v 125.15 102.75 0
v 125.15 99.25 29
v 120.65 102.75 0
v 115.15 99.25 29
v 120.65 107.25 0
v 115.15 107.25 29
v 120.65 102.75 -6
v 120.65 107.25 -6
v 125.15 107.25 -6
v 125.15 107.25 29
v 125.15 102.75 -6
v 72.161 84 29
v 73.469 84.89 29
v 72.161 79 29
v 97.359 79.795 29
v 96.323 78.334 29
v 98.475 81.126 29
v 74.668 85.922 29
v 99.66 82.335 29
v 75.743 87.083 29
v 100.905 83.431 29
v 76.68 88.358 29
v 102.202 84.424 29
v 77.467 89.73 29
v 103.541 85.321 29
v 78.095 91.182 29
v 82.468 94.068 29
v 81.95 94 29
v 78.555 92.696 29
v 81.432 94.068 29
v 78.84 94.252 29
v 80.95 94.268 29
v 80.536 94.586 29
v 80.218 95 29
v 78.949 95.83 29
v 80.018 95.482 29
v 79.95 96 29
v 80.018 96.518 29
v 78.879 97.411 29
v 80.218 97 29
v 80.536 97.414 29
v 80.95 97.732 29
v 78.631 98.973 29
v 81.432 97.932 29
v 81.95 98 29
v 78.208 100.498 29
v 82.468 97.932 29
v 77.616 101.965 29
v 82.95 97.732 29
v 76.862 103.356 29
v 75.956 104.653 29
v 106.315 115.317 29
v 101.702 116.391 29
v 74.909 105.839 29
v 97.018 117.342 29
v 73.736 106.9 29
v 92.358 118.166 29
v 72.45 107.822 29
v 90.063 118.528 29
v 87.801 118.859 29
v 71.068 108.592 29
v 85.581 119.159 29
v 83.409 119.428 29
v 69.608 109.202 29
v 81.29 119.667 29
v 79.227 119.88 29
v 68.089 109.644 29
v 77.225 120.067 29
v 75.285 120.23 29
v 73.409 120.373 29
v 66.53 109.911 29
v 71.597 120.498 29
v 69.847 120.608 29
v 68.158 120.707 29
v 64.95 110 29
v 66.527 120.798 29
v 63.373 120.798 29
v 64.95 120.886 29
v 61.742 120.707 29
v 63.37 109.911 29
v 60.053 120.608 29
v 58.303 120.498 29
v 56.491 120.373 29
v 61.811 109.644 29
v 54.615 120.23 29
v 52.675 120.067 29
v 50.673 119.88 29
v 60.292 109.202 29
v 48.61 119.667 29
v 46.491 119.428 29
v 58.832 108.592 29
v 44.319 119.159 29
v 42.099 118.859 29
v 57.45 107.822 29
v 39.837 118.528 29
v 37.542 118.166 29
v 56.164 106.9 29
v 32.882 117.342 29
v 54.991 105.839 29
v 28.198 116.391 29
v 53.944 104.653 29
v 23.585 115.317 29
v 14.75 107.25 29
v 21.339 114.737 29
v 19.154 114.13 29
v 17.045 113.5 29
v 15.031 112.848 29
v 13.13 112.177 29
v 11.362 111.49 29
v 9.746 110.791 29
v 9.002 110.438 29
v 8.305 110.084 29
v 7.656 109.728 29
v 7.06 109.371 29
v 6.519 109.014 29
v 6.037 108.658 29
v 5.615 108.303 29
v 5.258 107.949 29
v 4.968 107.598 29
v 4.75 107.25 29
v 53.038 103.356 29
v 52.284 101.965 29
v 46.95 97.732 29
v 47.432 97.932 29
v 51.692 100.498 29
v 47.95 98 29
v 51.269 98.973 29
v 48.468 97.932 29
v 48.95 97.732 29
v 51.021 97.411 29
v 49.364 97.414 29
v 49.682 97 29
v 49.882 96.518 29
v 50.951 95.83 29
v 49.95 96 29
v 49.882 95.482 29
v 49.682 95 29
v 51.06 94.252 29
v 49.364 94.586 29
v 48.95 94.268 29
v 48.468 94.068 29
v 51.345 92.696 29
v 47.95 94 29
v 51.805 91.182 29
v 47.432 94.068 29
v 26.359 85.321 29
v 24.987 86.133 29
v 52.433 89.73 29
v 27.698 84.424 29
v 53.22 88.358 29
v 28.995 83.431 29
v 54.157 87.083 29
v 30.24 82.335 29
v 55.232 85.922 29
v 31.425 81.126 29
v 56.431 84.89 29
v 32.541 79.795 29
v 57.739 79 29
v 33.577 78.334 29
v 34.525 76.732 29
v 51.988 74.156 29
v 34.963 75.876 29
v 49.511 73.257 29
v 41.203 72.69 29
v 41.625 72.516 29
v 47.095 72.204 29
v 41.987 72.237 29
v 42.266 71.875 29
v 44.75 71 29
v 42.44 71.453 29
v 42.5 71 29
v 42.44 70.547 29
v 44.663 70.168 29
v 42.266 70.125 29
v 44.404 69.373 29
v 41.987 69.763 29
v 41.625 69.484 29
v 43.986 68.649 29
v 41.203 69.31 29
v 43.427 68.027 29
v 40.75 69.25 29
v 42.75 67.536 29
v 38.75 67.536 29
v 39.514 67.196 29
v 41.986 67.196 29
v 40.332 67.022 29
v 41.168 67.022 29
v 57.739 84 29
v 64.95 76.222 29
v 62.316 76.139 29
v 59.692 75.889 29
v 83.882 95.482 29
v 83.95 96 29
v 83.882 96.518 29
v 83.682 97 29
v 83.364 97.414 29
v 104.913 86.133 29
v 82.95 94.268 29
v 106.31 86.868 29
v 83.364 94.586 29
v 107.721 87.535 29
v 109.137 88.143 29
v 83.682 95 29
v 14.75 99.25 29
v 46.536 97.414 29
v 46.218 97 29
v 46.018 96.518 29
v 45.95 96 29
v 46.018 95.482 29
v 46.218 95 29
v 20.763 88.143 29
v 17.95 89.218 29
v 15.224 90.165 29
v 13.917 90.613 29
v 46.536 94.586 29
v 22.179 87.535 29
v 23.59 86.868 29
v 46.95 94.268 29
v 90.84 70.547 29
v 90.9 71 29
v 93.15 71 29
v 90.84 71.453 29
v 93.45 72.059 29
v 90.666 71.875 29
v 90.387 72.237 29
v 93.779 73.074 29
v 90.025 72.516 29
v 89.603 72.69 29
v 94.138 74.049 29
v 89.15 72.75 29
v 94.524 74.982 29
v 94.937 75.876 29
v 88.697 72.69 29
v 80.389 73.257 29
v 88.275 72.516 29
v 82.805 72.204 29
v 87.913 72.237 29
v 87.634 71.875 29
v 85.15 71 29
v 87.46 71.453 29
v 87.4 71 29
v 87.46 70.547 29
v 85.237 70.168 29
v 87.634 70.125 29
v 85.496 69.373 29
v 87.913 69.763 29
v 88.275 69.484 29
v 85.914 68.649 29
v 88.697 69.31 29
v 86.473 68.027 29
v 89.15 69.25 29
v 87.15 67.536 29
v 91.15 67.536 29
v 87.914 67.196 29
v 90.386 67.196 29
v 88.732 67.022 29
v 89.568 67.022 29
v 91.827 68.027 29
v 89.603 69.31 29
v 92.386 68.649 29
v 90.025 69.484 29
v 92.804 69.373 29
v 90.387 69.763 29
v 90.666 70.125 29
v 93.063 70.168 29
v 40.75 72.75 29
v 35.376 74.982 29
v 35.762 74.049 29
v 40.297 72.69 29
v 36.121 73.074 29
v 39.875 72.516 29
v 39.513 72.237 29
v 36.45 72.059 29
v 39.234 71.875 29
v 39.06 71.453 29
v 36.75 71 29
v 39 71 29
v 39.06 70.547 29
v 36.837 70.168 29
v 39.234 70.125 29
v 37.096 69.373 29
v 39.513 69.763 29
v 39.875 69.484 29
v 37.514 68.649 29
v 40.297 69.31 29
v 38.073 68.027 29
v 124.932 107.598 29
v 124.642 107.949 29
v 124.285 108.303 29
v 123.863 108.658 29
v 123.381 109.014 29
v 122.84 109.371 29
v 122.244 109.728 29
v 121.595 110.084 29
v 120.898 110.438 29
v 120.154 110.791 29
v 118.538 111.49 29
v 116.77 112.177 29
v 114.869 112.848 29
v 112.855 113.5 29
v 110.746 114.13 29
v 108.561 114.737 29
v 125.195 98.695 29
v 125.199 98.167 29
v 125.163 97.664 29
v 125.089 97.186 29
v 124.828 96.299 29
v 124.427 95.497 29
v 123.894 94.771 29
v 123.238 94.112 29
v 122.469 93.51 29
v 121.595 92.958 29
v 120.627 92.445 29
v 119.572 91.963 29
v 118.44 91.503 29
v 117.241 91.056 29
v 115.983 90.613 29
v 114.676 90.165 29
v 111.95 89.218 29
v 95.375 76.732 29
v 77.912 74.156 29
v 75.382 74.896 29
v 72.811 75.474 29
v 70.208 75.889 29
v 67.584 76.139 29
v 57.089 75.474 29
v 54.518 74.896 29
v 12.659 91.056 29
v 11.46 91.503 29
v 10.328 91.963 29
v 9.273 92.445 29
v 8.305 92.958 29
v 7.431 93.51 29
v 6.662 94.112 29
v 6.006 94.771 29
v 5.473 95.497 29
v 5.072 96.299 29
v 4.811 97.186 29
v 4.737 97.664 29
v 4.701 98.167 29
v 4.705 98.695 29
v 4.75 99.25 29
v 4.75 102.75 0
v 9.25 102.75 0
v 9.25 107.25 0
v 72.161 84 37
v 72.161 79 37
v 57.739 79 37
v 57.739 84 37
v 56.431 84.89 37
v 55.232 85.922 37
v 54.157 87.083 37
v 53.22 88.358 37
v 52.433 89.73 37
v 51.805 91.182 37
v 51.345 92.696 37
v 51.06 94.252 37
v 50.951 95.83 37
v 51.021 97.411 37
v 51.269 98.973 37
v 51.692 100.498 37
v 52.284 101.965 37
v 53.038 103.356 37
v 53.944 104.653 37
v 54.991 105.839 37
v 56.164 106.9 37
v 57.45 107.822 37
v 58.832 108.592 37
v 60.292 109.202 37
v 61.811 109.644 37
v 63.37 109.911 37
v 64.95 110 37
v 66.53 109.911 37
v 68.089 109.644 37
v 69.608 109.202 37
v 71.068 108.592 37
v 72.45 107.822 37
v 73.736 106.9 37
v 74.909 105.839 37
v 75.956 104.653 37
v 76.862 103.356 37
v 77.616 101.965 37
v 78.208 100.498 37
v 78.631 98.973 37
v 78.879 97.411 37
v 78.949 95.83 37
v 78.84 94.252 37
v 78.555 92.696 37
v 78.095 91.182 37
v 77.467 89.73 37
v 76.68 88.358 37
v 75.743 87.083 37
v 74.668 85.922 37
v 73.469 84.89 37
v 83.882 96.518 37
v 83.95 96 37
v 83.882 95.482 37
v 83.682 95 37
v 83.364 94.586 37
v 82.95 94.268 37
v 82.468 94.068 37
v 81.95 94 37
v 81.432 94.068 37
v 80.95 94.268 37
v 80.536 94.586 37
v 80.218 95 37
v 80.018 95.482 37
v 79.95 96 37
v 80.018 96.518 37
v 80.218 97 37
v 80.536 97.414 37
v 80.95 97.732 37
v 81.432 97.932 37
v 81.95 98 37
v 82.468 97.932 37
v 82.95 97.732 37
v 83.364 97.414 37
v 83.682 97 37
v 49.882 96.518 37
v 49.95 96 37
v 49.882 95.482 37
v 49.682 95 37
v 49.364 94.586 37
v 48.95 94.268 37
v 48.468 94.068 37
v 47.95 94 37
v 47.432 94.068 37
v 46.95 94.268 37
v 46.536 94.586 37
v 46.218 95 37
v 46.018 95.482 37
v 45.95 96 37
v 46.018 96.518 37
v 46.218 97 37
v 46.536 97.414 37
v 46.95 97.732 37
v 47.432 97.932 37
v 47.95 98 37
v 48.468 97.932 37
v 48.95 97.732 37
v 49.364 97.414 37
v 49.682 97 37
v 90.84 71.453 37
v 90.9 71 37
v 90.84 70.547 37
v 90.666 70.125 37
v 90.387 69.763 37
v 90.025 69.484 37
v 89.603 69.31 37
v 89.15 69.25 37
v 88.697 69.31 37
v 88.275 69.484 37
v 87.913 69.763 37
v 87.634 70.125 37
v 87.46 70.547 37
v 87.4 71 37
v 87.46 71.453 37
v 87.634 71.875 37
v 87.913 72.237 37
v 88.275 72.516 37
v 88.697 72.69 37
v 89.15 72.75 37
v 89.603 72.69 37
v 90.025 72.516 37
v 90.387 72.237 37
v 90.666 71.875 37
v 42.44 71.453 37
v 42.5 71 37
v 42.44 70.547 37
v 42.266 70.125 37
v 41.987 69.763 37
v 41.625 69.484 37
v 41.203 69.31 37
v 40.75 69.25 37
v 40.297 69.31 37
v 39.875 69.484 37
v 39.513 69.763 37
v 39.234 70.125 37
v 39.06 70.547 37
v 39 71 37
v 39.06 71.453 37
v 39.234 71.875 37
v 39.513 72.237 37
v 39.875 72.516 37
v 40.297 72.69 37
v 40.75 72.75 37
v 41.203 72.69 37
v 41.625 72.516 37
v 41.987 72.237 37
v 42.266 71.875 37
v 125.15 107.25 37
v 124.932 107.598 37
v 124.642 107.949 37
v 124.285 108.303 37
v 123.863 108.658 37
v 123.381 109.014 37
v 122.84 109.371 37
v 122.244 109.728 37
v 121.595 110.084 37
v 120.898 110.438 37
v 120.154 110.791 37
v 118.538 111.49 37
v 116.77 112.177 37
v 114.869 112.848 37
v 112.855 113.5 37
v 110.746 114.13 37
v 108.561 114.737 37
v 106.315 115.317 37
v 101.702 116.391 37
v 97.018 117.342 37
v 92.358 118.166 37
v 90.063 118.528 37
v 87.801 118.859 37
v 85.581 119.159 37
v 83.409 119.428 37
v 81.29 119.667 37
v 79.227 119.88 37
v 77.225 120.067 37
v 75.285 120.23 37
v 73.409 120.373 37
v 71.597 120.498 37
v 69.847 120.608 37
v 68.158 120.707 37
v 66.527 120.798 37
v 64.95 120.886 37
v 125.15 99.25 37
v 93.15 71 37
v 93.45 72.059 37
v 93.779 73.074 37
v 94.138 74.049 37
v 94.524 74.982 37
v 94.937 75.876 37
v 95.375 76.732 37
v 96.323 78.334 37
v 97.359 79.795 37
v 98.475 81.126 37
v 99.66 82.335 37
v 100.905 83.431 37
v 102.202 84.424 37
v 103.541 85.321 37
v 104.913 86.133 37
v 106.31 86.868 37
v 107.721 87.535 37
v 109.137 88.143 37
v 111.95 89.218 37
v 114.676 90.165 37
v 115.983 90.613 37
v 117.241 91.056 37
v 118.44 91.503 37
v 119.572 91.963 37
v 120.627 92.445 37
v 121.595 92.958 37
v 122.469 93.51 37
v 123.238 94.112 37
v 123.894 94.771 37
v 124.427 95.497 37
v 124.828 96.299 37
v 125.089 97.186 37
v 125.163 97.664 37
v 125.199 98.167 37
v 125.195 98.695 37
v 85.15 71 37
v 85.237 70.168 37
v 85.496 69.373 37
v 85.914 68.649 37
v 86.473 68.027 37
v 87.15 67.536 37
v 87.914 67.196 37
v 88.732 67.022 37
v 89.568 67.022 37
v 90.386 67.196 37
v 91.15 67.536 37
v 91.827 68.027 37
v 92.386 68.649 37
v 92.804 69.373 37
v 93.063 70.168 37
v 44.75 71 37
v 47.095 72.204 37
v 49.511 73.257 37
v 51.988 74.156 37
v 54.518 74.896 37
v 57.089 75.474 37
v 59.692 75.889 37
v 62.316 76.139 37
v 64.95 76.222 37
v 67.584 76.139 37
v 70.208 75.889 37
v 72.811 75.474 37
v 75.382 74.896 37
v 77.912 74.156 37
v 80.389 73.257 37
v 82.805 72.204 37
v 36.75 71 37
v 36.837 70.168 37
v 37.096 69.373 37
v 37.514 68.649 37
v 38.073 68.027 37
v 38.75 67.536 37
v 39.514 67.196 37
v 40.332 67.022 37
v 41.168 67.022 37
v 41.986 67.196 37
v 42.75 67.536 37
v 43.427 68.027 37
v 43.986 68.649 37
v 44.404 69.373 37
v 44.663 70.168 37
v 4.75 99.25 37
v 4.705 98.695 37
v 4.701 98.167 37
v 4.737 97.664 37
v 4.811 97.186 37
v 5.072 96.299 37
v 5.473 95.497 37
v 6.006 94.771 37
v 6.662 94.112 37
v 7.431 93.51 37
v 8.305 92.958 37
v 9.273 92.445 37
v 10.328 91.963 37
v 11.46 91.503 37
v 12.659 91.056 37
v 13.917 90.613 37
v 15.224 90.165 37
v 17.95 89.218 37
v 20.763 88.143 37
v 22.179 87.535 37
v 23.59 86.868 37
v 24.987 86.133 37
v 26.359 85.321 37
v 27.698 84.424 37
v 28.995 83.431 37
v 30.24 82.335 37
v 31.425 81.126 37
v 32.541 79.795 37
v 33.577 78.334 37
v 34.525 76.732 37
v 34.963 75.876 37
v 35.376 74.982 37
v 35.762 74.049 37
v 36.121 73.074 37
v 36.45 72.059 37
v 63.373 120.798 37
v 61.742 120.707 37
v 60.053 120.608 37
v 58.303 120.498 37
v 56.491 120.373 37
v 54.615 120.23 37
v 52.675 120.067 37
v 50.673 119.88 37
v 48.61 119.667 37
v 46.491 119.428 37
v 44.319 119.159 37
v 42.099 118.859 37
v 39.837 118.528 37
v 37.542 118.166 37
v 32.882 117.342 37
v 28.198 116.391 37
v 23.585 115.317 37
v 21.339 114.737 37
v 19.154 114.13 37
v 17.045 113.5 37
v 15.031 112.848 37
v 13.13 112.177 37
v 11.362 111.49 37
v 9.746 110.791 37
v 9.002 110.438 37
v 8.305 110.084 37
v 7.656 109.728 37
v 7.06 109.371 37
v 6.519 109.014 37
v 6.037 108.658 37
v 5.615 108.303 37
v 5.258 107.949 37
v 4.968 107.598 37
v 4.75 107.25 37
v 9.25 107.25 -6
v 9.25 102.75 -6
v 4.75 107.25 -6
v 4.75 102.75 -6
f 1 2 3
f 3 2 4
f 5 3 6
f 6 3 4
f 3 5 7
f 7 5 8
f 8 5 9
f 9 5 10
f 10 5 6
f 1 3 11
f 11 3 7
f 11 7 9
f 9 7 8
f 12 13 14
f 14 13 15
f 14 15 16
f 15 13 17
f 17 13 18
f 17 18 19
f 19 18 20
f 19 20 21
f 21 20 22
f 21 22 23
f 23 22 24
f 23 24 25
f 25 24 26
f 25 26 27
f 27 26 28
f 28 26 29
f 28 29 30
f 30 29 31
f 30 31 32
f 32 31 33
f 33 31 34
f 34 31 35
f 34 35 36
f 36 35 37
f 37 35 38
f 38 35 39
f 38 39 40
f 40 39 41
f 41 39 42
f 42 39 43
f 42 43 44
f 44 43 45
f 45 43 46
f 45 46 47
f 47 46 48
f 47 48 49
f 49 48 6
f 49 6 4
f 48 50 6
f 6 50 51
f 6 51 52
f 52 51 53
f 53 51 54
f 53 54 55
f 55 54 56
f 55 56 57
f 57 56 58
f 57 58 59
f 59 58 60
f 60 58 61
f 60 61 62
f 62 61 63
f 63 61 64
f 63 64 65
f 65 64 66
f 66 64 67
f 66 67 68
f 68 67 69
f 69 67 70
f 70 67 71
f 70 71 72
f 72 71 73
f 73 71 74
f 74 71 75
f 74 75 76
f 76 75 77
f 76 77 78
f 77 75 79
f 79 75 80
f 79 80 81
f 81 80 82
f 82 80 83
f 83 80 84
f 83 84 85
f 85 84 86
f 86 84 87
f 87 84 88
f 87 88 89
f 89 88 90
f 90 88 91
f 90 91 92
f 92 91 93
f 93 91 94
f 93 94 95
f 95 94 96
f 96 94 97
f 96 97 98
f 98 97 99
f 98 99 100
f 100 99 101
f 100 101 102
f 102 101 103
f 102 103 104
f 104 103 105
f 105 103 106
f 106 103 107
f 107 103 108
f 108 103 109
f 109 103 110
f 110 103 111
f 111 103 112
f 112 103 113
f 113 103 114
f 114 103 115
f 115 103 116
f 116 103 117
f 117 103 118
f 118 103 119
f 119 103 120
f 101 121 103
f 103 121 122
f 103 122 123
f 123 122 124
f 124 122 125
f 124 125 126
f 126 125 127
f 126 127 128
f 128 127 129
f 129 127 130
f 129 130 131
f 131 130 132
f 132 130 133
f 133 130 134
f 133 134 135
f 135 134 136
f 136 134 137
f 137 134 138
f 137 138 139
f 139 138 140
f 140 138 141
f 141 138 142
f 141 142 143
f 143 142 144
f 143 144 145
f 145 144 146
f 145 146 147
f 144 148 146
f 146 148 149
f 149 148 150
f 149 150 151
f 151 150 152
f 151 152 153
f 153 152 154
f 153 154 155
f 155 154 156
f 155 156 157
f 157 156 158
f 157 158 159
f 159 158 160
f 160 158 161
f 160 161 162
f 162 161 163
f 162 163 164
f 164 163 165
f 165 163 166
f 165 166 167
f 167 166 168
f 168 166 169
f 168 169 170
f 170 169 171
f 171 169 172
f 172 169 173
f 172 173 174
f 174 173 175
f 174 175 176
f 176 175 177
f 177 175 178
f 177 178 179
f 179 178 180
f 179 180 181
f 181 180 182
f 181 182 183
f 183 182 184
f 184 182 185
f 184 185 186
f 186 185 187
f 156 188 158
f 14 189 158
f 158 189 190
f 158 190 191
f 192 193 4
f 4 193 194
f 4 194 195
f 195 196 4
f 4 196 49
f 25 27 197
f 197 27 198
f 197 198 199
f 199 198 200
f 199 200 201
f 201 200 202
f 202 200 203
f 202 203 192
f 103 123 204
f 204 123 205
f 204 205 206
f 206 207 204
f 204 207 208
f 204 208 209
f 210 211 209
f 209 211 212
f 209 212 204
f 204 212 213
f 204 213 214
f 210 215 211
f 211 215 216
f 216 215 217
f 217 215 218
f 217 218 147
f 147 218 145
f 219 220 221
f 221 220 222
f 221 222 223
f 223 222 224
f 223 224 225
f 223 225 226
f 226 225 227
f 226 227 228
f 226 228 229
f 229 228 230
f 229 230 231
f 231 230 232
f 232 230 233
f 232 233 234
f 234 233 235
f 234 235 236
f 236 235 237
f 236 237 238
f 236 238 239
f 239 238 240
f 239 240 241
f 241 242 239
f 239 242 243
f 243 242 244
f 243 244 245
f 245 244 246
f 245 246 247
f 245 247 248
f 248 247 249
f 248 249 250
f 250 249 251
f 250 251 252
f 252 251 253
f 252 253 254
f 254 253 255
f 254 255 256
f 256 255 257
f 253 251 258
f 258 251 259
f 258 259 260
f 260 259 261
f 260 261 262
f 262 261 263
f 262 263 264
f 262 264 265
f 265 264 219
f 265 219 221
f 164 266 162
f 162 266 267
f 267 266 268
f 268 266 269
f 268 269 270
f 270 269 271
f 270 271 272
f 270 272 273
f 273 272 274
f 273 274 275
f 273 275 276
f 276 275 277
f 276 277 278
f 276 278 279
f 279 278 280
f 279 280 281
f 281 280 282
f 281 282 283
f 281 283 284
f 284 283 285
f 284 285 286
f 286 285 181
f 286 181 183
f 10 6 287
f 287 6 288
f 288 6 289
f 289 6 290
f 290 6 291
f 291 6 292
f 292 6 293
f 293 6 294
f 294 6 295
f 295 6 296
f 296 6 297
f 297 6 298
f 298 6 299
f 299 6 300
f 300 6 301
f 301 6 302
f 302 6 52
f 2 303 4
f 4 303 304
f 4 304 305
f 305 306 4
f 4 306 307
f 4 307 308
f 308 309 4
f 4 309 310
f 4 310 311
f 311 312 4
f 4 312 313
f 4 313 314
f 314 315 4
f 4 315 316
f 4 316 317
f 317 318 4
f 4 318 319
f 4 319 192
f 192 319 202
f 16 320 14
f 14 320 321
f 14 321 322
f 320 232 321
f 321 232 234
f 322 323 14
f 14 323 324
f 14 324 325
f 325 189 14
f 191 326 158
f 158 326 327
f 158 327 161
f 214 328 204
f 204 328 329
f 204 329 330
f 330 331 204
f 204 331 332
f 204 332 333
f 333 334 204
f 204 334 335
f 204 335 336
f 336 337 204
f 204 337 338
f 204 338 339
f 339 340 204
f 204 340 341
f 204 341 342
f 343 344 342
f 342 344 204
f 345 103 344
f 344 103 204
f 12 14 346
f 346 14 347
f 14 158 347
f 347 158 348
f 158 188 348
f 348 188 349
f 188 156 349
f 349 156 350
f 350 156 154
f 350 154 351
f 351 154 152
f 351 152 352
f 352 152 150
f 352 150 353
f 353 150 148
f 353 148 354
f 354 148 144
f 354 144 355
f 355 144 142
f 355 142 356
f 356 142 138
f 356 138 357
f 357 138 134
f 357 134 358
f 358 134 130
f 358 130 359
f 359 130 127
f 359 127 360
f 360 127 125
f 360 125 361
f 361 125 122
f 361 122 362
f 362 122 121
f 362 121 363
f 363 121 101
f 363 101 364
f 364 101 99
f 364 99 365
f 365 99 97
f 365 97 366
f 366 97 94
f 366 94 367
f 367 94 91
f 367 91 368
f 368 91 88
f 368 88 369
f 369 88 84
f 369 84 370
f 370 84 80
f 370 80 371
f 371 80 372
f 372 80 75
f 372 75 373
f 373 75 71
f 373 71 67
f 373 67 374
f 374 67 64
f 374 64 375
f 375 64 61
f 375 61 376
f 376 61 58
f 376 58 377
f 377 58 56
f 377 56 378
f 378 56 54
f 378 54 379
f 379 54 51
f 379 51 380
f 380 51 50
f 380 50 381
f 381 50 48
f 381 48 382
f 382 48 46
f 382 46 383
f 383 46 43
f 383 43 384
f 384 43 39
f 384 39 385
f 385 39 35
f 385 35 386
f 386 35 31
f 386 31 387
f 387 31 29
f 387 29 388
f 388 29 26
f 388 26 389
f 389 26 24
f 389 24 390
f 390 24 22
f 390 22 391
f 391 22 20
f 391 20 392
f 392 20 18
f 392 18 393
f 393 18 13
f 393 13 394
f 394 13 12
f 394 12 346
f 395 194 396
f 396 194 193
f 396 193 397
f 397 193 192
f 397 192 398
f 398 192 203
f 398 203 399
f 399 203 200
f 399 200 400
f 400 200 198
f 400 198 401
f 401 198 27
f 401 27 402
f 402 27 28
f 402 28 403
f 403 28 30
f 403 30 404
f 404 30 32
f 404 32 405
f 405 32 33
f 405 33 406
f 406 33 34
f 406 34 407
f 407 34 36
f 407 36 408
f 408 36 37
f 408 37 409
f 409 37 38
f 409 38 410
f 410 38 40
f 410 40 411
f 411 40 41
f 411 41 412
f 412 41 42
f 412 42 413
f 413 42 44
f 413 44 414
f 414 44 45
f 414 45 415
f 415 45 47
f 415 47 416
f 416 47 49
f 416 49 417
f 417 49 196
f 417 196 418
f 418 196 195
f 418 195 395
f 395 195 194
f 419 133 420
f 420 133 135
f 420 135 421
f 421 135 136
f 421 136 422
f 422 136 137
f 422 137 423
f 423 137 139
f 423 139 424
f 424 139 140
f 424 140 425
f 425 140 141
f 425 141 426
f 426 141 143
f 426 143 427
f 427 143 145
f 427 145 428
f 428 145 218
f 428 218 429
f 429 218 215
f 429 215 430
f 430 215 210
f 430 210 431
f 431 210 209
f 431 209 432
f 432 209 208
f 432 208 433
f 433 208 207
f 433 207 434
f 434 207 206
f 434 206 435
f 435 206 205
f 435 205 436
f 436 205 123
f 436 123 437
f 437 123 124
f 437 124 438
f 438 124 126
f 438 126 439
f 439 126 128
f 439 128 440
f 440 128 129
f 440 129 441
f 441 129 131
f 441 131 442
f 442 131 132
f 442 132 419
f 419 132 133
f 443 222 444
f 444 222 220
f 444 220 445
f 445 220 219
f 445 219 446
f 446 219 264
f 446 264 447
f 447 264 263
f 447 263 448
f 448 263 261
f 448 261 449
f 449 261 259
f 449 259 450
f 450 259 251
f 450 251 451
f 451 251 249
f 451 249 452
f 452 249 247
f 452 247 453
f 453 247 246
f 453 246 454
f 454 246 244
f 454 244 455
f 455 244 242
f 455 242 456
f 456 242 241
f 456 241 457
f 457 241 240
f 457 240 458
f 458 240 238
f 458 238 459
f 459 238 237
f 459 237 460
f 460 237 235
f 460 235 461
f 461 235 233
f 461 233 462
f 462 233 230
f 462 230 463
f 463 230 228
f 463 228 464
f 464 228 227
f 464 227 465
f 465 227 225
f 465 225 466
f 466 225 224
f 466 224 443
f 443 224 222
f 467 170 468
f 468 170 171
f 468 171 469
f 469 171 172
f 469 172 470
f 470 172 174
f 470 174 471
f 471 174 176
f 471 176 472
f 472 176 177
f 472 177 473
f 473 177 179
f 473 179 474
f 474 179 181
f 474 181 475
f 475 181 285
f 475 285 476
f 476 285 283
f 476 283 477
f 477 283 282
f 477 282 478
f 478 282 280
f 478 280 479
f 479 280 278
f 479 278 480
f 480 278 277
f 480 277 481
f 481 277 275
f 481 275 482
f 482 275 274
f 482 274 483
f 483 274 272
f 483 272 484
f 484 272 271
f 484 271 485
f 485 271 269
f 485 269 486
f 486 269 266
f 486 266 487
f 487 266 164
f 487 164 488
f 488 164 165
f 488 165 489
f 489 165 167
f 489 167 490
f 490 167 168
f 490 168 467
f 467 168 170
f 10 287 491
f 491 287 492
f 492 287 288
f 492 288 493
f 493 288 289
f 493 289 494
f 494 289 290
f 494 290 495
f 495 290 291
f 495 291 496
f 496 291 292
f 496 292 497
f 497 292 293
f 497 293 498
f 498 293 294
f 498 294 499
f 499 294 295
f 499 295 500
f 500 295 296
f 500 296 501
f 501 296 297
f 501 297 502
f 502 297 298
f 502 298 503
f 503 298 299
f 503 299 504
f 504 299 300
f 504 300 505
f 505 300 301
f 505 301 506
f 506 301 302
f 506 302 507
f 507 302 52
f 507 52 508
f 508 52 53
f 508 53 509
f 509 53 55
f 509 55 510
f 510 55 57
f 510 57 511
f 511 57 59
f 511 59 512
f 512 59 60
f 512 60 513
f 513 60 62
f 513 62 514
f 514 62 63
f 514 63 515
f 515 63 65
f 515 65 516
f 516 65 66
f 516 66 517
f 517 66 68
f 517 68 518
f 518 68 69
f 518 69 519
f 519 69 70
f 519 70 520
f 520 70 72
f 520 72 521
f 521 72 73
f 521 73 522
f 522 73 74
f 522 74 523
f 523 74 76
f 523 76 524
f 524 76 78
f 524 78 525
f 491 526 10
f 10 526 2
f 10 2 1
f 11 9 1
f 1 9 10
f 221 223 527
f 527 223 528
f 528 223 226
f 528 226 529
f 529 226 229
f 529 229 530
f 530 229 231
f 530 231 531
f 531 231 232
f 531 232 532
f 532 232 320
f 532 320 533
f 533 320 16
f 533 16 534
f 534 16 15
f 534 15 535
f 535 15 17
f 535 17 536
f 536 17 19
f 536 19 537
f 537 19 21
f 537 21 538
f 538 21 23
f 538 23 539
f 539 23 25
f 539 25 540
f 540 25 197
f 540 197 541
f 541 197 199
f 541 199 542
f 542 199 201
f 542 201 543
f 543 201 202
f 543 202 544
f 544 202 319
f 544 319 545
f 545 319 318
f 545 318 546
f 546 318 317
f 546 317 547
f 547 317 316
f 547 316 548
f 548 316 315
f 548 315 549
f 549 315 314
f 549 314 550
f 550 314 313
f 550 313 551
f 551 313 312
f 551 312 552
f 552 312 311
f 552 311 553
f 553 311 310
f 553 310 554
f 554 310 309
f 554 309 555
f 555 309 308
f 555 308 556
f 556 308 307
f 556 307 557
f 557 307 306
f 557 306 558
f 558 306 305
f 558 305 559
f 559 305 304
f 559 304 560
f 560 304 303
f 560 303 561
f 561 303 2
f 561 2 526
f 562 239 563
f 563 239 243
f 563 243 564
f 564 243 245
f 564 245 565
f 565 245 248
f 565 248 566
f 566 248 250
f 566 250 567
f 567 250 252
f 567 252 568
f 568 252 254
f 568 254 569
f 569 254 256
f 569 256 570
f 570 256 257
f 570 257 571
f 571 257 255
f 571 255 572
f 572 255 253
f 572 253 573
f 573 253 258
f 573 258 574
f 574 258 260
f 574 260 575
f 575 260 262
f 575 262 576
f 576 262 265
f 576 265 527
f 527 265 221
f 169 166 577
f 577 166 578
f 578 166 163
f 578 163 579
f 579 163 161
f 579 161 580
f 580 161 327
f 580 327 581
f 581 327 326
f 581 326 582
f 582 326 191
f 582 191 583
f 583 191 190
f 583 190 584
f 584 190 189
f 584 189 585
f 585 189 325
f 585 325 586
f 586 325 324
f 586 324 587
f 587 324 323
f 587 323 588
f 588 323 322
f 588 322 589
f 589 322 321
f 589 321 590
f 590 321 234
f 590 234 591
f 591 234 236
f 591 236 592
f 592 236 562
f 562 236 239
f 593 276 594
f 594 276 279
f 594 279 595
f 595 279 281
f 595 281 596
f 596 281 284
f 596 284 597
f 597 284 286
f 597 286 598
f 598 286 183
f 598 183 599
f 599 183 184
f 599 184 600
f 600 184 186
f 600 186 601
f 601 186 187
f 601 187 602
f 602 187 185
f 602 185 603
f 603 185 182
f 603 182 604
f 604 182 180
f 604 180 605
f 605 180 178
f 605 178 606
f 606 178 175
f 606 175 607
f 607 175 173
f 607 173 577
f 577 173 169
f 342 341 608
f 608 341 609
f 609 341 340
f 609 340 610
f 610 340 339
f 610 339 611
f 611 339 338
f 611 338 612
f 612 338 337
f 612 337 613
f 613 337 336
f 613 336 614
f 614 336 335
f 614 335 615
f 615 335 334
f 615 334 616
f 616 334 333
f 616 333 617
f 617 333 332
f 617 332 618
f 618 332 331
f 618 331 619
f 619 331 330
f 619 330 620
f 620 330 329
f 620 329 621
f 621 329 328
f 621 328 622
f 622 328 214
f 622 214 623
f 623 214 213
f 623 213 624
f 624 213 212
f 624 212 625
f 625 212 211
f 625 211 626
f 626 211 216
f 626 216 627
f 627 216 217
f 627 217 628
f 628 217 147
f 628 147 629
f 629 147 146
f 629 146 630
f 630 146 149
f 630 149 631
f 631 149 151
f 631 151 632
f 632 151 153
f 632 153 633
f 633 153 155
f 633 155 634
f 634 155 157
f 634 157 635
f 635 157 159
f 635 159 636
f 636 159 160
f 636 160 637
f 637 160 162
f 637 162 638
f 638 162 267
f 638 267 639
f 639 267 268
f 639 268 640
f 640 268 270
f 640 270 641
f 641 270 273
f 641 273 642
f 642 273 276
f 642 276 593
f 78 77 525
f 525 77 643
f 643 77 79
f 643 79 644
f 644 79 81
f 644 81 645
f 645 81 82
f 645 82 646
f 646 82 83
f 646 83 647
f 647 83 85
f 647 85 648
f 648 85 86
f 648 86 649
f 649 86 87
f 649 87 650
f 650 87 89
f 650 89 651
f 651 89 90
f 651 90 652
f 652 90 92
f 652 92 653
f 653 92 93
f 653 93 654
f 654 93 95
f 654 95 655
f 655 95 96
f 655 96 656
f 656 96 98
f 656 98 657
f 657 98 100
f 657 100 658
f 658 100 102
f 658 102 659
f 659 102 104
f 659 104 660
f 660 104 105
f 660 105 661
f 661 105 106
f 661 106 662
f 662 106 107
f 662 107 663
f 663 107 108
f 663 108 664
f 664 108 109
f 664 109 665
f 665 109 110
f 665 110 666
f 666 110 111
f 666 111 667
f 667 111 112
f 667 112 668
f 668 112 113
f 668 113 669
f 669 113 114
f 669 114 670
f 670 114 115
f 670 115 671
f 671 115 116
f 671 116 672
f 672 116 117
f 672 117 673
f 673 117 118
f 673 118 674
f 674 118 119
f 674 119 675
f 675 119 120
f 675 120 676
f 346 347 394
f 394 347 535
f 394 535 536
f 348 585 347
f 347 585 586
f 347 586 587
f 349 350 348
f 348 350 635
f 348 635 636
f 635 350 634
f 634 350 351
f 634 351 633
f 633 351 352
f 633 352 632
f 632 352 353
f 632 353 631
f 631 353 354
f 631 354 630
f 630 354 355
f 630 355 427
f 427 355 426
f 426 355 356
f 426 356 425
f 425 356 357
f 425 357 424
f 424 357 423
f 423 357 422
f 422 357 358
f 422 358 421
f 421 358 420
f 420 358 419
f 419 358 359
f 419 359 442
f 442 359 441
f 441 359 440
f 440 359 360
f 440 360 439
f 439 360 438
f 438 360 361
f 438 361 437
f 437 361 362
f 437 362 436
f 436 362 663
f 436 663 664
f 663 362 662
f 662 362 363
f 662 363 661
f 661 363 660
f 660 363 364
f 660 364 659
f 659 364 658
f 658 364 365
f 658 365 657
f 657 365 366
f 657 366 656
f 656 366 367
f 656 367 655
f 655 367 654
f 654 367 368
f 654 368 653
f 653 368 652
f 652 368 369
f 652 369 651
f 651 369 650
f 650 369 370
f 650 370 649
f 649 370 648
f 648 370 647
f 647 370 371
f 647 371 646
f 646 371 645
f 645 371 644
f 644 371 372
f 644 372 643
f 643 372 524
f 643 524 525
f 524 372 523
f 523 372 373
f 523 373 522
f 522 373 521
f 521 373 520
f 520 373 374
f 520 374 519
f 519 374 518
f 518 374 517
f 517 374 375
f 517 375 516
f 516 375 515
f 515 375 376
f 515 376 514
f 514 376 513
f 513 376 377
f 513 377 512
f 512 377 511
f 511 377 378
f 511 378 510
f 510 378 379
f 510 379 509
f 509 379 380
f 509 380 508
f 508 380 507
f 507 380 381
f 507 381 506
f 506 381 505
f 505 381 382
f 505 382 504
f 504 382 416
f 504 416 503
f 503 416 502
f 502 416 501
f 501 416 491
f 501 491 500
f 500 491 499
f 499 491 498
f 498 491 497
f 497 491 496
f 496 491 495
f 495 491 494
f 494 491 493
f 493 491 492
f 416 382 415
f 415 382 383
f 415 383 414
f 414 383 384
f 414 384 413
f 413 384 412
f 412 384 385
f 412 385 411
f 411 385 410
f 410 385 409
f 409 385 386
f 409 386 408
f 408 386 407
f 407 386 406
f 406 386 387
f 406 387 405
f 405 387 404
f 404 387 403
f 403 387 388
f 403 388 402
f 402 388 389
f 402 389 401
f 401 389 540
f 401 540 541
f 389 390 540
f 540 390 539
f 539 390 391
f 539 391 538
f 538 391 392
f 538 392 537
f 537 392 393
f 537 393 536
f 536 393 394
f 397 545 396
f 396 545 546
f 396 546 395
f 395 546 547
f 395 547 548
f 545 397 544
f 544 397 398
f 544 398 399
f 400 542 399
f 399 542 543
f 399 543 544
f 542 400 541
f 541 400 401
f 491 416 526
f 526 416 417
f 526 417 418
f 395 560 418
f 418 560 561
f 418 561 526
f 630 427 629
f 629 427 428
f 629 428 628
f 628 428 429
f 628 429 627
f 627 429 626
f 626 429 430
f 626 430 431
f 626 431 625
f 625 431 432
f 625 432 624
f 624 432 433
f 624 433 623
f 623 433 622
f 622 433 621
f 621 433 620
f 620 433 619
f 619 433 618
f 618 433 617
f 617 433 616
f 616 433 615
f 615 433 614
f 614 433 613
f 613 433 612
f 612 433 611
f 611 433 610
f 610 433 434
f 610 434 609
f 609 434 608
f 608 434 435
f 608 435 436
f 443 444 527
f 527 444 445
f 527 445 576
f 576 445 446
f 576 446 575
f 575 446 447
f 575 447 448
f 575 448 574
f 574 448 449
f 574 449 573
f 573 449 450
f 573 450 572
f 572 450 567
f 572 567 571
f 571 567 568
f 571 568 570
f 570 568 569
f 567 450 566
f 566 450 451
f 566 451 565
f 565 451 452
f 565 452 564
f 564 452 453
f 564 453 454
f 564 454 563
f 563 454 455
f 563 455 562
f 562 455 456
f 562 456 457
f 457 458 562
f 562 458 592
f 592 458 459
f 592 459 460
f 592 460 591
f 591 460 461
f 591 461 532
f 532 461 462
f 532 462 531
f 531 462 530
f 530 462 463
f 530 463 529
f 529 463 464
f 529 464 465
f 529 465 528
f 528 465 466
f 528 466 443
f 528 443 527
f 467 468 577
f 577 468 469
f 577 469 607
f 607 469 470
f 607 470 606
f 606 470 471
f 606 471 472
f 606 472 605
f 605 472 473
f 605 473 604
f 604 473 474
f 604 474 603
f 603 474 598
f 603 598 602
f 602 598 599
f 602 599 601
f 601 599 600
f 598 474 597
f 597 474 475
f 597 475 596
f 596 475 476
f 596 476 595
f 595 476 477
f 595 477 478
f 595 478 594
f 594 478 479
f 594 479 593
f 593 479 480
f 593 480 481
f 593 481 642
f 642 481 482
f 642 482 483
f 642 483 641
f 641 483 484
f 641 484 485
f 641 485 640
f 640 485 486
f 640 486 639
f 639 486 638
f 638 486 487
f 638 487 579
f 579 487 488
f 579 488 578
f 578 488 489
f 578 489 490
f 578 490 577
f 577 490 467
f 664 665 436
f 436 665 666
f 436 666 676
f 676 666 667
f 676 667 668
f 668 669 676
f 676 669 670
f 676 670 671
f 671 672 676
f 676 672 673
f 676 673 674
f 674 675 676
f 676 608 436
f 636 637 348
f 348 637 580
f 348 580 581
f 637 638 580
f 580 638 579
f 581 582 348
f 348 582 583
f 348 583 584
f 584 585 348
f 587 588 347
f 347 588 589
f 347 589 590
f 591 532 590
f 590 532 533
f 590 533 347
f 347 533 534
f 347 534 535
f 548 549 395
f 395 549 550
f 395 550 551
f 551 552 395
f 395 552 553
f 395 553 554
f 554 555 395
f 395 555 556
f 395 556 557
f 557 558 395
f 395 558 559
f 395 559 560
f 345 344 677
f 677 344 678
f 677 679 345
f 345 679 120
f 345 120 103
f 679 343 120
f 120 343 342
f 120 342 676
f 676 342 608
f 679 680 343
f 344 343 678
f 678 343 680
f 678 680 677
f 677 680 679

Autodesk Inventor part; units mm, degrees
ref_plane "XZ Plane" through (0, 0, 0) normal (0, 1, 0) x (-1, 0, 0)
sketch "Szkic2" plane through (0, 0, 0) normal (0, 0, 1) x (1, 0, 0)
  line L0 (4.75, 102.75) -> (9.25, 102.75)
  line L1 (9.25, 102.75) -> (9.25, 107.25)
  line L2 (9.25, 107.25) -> (4.75, 107.25)
  line L3 (4.75, 107.25) -> (4.75, 102.75)
  line L4 (4.75, 102.75) -> (9.25, 107.25) construction
  line L5 (9.25, 102.75) -> (4.75, 107.25) construction
  point P0 (0, 0)
  point P1 (64.95, 71.5)
  point P2 (7, 105)
  dimension "d1" = 4.5
  dimension "d2" = 4.5
ref_plane "Płaszczyzna konstrukcyjna1" through (64.95, 71.5, 0) normal (1, 0, 0) x (0, 1, 0)
ref_plane "Płaszczyzna konstrukcyjna2" through (0, 0, 29) normal (0, 0, 1) x (1, 0, 0)
sketch "Szkic3" plane through (0, 0, 29) normal (0, 0, 1) x (1, 0, 0)
  circle A0 centre (40.75, 71) radius 1.75 projected
  point P0 (0, 0)
extrude "Wyciągnięcie proste1" add sketch "Szkic2" against normal blind 6
sketch "Szkic4" plane through (0, 0, 0) normal (0, 0, 1) x (1, 0, 0)
  line L0 (4.75, 102.75) -> (9.25, 102.75) projected
  line L1 (9.25, 102.75) -> (9.25, 107.25) projected
  line L2 (9.25, 107.25) -> (4.75, 107.25) projected
  line L3 (4.75, 107.25) -> (4.75, 102.75) projected
  point P0 (0, 0)
sketch "Szkic5" plane through (0, 0, 29) normal (0, 0, 1) x (1, 0, 0)
  line L0 (64.95, 149.0685) -> (64.95, -24.8448) construction
  line L1 (64.95, 88) -> (64.95, 96) construction
  line L2 (64.95, 96) -> (47.95, 96) construction
  circle A0 centre (47.95, 96) radius 2
  line L3 (64.95, 96) -> (64.95, 84) construction
  line L4 (64.95, 84) -> (57.7389, 84) construction
  arc A1 (64.95, 110) -> (57.7389, 84) centre (64.95, 96) ccw
  line L5 (57.7389, 84) -> (57.7389, 79)
  line L6 (57.7389, 79) -> (64.95, 79)
  circle A2 centre (40.75, 71) radius 1.75 projected
  line L7 (64.95, 96) -> (81.95, 96) construction
  circle A3 centre (81.95, 96) radius 2
  line L8 (64.95, 84) -> (72.1611, 84) construction
  arc A4 (72.1611, 84) -> (64.95, 110) centre (64.95, 96) ccw
  line L9 (72.1611, 84) -> (72.1611, 79)
  line L10 (72.1611, 79) -> (64.95, 79)
  circle A5 centre (89.15, 71) radius 1.75
  arc A6 (36.75, 71) -> (44.75, 71) centre (40.75, 71) ccw
  arc A7 (85.15, 71) -> (93.15, 71) centre (89.15, 71) ccw
  arc A8 (85.15, 71) -> (44.75, 71) centre (64.95, 34.5448) ccw
  spline S0 degree 3 poles (4.75, 99.25) (3.3447, 87.1152) (30.6878, 94.0489) (36.75, 71) knots 0 0 0 0 1 1 1 1
  spline S1 degree 3 poles (125.15, 99.25) (126.5553, 87.1152) (99.2122, 94.0489) (93.15, 71) knots 0 0 0 0 1 1 1 1
  spline S2 degree 4 poles (4.75, 107.25) (7.6598, 112.7952) (35.9373, 119.5714) (52.5371, 120.1837) (64.95, 120.886) knots 0 0 0 0 0 1 1 1 1 1
  spline S3 degree 4 poles (125.15, 107.25) (122.2402, 112.7952) (93.9627, 119.5714) (77.3629, 120.1837) (64.95, 120.886) knots 0 0 0 0 0 1 1 1 1 1
  line L11 (125.15, 107.25) -> (125.15, 99.25)
  line L12 (4.75, 107.25) -> (4.75, 99.25)
  point P0 (0, 0)
  point P1 (50.95, 96)
  point P2 (78.95, 96)
  point P3 (7.7703, 93.2829)
  point P4 (21.1067, 88)
  point P5 (122.1297, 93.2829)
  point P6 (108.7933, 88)
  point P7 (10.3549, 111.0646)
  point P8 (29.8942, 116.7506)
  point P9 (51.4593, 119.9555)
  point P10 (119.5451, 111.0646)
  point P11 (100.0058, 116.7506)
  point P12 (78.4407, 119.9555)
  dimension "d7" = 17
  dimension "d8" = 4
  dimension "d9" = 12
  dimension "d10" = 5
  dimension "d13" = 4
  dimension "d14" = 8
extrude "Wyciągnięcie proste2" add sketch "Szkic5" along normal blind 8
sketch "Szkic6" plane through (0, 0, 29) normal (0, 0, -1) x (-1, 0, 0)
  line L0 (-9.25, 107.25) -> (-4.75, 107.25) projected
  line L1 (-4.75, 107.25) -> (-4.75, 99.25) projected
  line L2 (-4.75, 107.25) -> (-14.75, 107.25)
  line L3 (-14.75, 107.25) -> (-14.75, 99.25)
  line L4 (-14.75, 99.25) -> (-4.75, 99.25)
  line L5 (-4.75, 99.25) -> (-4.75, 107.25)
  line L6 (-64.95, -24.1772) -> (-64.95, 145.0632) construction
  point P0 (0, 0)
  point P1 (-125.15, 107.25)
  dimension "d19" = 10
  dimension "d20" = 8
sketch "Szkic7" plane through (0, 0, 0) normal (0, 0, 1) x (1, 0, 0)
  line L0 (4.75, 102.75) -> (9.25, 102.75) projected
  line L1 (9.25, 102.75) -> (9.25, 107.25) projected
  line L2 (9.25, 107.25) -> (4.75, 107.25) projected
  line L3 (4.75, 107.25) -> (4.75, 102.75) projected
  line L4 (4.75, 102.75) -> (9.25, 102.75) projected
  line L5 (4.75, 102.75) -> (9.25, 102.75)
  line L6 (9.25, 102.75) -> (9.25, 107.25)
  line L7 (9.25, 107.25) -> (4.75, 107.25)
  line L8 (4.75, 107.25) -> (4.75, 102.75)
  point P0 (0, 0)
  dimension "d21" = 4.5
  dimension "d22" = 4.5
loft "Wyciągnięcie złożone1" add profiles "Szkic6" section 1 edges at (7, 102.75, 0) (9.25, 105, 0) (7, 107.25, 0) (4.75, 105, 0)
mirror "Odbij1" about plane through (64.95, 71.5, 0) normal (1, 0, 0) of "Wyciągnięcie złożone1", "Wyciągnięcie proste1"
properties part number "turret_base"
